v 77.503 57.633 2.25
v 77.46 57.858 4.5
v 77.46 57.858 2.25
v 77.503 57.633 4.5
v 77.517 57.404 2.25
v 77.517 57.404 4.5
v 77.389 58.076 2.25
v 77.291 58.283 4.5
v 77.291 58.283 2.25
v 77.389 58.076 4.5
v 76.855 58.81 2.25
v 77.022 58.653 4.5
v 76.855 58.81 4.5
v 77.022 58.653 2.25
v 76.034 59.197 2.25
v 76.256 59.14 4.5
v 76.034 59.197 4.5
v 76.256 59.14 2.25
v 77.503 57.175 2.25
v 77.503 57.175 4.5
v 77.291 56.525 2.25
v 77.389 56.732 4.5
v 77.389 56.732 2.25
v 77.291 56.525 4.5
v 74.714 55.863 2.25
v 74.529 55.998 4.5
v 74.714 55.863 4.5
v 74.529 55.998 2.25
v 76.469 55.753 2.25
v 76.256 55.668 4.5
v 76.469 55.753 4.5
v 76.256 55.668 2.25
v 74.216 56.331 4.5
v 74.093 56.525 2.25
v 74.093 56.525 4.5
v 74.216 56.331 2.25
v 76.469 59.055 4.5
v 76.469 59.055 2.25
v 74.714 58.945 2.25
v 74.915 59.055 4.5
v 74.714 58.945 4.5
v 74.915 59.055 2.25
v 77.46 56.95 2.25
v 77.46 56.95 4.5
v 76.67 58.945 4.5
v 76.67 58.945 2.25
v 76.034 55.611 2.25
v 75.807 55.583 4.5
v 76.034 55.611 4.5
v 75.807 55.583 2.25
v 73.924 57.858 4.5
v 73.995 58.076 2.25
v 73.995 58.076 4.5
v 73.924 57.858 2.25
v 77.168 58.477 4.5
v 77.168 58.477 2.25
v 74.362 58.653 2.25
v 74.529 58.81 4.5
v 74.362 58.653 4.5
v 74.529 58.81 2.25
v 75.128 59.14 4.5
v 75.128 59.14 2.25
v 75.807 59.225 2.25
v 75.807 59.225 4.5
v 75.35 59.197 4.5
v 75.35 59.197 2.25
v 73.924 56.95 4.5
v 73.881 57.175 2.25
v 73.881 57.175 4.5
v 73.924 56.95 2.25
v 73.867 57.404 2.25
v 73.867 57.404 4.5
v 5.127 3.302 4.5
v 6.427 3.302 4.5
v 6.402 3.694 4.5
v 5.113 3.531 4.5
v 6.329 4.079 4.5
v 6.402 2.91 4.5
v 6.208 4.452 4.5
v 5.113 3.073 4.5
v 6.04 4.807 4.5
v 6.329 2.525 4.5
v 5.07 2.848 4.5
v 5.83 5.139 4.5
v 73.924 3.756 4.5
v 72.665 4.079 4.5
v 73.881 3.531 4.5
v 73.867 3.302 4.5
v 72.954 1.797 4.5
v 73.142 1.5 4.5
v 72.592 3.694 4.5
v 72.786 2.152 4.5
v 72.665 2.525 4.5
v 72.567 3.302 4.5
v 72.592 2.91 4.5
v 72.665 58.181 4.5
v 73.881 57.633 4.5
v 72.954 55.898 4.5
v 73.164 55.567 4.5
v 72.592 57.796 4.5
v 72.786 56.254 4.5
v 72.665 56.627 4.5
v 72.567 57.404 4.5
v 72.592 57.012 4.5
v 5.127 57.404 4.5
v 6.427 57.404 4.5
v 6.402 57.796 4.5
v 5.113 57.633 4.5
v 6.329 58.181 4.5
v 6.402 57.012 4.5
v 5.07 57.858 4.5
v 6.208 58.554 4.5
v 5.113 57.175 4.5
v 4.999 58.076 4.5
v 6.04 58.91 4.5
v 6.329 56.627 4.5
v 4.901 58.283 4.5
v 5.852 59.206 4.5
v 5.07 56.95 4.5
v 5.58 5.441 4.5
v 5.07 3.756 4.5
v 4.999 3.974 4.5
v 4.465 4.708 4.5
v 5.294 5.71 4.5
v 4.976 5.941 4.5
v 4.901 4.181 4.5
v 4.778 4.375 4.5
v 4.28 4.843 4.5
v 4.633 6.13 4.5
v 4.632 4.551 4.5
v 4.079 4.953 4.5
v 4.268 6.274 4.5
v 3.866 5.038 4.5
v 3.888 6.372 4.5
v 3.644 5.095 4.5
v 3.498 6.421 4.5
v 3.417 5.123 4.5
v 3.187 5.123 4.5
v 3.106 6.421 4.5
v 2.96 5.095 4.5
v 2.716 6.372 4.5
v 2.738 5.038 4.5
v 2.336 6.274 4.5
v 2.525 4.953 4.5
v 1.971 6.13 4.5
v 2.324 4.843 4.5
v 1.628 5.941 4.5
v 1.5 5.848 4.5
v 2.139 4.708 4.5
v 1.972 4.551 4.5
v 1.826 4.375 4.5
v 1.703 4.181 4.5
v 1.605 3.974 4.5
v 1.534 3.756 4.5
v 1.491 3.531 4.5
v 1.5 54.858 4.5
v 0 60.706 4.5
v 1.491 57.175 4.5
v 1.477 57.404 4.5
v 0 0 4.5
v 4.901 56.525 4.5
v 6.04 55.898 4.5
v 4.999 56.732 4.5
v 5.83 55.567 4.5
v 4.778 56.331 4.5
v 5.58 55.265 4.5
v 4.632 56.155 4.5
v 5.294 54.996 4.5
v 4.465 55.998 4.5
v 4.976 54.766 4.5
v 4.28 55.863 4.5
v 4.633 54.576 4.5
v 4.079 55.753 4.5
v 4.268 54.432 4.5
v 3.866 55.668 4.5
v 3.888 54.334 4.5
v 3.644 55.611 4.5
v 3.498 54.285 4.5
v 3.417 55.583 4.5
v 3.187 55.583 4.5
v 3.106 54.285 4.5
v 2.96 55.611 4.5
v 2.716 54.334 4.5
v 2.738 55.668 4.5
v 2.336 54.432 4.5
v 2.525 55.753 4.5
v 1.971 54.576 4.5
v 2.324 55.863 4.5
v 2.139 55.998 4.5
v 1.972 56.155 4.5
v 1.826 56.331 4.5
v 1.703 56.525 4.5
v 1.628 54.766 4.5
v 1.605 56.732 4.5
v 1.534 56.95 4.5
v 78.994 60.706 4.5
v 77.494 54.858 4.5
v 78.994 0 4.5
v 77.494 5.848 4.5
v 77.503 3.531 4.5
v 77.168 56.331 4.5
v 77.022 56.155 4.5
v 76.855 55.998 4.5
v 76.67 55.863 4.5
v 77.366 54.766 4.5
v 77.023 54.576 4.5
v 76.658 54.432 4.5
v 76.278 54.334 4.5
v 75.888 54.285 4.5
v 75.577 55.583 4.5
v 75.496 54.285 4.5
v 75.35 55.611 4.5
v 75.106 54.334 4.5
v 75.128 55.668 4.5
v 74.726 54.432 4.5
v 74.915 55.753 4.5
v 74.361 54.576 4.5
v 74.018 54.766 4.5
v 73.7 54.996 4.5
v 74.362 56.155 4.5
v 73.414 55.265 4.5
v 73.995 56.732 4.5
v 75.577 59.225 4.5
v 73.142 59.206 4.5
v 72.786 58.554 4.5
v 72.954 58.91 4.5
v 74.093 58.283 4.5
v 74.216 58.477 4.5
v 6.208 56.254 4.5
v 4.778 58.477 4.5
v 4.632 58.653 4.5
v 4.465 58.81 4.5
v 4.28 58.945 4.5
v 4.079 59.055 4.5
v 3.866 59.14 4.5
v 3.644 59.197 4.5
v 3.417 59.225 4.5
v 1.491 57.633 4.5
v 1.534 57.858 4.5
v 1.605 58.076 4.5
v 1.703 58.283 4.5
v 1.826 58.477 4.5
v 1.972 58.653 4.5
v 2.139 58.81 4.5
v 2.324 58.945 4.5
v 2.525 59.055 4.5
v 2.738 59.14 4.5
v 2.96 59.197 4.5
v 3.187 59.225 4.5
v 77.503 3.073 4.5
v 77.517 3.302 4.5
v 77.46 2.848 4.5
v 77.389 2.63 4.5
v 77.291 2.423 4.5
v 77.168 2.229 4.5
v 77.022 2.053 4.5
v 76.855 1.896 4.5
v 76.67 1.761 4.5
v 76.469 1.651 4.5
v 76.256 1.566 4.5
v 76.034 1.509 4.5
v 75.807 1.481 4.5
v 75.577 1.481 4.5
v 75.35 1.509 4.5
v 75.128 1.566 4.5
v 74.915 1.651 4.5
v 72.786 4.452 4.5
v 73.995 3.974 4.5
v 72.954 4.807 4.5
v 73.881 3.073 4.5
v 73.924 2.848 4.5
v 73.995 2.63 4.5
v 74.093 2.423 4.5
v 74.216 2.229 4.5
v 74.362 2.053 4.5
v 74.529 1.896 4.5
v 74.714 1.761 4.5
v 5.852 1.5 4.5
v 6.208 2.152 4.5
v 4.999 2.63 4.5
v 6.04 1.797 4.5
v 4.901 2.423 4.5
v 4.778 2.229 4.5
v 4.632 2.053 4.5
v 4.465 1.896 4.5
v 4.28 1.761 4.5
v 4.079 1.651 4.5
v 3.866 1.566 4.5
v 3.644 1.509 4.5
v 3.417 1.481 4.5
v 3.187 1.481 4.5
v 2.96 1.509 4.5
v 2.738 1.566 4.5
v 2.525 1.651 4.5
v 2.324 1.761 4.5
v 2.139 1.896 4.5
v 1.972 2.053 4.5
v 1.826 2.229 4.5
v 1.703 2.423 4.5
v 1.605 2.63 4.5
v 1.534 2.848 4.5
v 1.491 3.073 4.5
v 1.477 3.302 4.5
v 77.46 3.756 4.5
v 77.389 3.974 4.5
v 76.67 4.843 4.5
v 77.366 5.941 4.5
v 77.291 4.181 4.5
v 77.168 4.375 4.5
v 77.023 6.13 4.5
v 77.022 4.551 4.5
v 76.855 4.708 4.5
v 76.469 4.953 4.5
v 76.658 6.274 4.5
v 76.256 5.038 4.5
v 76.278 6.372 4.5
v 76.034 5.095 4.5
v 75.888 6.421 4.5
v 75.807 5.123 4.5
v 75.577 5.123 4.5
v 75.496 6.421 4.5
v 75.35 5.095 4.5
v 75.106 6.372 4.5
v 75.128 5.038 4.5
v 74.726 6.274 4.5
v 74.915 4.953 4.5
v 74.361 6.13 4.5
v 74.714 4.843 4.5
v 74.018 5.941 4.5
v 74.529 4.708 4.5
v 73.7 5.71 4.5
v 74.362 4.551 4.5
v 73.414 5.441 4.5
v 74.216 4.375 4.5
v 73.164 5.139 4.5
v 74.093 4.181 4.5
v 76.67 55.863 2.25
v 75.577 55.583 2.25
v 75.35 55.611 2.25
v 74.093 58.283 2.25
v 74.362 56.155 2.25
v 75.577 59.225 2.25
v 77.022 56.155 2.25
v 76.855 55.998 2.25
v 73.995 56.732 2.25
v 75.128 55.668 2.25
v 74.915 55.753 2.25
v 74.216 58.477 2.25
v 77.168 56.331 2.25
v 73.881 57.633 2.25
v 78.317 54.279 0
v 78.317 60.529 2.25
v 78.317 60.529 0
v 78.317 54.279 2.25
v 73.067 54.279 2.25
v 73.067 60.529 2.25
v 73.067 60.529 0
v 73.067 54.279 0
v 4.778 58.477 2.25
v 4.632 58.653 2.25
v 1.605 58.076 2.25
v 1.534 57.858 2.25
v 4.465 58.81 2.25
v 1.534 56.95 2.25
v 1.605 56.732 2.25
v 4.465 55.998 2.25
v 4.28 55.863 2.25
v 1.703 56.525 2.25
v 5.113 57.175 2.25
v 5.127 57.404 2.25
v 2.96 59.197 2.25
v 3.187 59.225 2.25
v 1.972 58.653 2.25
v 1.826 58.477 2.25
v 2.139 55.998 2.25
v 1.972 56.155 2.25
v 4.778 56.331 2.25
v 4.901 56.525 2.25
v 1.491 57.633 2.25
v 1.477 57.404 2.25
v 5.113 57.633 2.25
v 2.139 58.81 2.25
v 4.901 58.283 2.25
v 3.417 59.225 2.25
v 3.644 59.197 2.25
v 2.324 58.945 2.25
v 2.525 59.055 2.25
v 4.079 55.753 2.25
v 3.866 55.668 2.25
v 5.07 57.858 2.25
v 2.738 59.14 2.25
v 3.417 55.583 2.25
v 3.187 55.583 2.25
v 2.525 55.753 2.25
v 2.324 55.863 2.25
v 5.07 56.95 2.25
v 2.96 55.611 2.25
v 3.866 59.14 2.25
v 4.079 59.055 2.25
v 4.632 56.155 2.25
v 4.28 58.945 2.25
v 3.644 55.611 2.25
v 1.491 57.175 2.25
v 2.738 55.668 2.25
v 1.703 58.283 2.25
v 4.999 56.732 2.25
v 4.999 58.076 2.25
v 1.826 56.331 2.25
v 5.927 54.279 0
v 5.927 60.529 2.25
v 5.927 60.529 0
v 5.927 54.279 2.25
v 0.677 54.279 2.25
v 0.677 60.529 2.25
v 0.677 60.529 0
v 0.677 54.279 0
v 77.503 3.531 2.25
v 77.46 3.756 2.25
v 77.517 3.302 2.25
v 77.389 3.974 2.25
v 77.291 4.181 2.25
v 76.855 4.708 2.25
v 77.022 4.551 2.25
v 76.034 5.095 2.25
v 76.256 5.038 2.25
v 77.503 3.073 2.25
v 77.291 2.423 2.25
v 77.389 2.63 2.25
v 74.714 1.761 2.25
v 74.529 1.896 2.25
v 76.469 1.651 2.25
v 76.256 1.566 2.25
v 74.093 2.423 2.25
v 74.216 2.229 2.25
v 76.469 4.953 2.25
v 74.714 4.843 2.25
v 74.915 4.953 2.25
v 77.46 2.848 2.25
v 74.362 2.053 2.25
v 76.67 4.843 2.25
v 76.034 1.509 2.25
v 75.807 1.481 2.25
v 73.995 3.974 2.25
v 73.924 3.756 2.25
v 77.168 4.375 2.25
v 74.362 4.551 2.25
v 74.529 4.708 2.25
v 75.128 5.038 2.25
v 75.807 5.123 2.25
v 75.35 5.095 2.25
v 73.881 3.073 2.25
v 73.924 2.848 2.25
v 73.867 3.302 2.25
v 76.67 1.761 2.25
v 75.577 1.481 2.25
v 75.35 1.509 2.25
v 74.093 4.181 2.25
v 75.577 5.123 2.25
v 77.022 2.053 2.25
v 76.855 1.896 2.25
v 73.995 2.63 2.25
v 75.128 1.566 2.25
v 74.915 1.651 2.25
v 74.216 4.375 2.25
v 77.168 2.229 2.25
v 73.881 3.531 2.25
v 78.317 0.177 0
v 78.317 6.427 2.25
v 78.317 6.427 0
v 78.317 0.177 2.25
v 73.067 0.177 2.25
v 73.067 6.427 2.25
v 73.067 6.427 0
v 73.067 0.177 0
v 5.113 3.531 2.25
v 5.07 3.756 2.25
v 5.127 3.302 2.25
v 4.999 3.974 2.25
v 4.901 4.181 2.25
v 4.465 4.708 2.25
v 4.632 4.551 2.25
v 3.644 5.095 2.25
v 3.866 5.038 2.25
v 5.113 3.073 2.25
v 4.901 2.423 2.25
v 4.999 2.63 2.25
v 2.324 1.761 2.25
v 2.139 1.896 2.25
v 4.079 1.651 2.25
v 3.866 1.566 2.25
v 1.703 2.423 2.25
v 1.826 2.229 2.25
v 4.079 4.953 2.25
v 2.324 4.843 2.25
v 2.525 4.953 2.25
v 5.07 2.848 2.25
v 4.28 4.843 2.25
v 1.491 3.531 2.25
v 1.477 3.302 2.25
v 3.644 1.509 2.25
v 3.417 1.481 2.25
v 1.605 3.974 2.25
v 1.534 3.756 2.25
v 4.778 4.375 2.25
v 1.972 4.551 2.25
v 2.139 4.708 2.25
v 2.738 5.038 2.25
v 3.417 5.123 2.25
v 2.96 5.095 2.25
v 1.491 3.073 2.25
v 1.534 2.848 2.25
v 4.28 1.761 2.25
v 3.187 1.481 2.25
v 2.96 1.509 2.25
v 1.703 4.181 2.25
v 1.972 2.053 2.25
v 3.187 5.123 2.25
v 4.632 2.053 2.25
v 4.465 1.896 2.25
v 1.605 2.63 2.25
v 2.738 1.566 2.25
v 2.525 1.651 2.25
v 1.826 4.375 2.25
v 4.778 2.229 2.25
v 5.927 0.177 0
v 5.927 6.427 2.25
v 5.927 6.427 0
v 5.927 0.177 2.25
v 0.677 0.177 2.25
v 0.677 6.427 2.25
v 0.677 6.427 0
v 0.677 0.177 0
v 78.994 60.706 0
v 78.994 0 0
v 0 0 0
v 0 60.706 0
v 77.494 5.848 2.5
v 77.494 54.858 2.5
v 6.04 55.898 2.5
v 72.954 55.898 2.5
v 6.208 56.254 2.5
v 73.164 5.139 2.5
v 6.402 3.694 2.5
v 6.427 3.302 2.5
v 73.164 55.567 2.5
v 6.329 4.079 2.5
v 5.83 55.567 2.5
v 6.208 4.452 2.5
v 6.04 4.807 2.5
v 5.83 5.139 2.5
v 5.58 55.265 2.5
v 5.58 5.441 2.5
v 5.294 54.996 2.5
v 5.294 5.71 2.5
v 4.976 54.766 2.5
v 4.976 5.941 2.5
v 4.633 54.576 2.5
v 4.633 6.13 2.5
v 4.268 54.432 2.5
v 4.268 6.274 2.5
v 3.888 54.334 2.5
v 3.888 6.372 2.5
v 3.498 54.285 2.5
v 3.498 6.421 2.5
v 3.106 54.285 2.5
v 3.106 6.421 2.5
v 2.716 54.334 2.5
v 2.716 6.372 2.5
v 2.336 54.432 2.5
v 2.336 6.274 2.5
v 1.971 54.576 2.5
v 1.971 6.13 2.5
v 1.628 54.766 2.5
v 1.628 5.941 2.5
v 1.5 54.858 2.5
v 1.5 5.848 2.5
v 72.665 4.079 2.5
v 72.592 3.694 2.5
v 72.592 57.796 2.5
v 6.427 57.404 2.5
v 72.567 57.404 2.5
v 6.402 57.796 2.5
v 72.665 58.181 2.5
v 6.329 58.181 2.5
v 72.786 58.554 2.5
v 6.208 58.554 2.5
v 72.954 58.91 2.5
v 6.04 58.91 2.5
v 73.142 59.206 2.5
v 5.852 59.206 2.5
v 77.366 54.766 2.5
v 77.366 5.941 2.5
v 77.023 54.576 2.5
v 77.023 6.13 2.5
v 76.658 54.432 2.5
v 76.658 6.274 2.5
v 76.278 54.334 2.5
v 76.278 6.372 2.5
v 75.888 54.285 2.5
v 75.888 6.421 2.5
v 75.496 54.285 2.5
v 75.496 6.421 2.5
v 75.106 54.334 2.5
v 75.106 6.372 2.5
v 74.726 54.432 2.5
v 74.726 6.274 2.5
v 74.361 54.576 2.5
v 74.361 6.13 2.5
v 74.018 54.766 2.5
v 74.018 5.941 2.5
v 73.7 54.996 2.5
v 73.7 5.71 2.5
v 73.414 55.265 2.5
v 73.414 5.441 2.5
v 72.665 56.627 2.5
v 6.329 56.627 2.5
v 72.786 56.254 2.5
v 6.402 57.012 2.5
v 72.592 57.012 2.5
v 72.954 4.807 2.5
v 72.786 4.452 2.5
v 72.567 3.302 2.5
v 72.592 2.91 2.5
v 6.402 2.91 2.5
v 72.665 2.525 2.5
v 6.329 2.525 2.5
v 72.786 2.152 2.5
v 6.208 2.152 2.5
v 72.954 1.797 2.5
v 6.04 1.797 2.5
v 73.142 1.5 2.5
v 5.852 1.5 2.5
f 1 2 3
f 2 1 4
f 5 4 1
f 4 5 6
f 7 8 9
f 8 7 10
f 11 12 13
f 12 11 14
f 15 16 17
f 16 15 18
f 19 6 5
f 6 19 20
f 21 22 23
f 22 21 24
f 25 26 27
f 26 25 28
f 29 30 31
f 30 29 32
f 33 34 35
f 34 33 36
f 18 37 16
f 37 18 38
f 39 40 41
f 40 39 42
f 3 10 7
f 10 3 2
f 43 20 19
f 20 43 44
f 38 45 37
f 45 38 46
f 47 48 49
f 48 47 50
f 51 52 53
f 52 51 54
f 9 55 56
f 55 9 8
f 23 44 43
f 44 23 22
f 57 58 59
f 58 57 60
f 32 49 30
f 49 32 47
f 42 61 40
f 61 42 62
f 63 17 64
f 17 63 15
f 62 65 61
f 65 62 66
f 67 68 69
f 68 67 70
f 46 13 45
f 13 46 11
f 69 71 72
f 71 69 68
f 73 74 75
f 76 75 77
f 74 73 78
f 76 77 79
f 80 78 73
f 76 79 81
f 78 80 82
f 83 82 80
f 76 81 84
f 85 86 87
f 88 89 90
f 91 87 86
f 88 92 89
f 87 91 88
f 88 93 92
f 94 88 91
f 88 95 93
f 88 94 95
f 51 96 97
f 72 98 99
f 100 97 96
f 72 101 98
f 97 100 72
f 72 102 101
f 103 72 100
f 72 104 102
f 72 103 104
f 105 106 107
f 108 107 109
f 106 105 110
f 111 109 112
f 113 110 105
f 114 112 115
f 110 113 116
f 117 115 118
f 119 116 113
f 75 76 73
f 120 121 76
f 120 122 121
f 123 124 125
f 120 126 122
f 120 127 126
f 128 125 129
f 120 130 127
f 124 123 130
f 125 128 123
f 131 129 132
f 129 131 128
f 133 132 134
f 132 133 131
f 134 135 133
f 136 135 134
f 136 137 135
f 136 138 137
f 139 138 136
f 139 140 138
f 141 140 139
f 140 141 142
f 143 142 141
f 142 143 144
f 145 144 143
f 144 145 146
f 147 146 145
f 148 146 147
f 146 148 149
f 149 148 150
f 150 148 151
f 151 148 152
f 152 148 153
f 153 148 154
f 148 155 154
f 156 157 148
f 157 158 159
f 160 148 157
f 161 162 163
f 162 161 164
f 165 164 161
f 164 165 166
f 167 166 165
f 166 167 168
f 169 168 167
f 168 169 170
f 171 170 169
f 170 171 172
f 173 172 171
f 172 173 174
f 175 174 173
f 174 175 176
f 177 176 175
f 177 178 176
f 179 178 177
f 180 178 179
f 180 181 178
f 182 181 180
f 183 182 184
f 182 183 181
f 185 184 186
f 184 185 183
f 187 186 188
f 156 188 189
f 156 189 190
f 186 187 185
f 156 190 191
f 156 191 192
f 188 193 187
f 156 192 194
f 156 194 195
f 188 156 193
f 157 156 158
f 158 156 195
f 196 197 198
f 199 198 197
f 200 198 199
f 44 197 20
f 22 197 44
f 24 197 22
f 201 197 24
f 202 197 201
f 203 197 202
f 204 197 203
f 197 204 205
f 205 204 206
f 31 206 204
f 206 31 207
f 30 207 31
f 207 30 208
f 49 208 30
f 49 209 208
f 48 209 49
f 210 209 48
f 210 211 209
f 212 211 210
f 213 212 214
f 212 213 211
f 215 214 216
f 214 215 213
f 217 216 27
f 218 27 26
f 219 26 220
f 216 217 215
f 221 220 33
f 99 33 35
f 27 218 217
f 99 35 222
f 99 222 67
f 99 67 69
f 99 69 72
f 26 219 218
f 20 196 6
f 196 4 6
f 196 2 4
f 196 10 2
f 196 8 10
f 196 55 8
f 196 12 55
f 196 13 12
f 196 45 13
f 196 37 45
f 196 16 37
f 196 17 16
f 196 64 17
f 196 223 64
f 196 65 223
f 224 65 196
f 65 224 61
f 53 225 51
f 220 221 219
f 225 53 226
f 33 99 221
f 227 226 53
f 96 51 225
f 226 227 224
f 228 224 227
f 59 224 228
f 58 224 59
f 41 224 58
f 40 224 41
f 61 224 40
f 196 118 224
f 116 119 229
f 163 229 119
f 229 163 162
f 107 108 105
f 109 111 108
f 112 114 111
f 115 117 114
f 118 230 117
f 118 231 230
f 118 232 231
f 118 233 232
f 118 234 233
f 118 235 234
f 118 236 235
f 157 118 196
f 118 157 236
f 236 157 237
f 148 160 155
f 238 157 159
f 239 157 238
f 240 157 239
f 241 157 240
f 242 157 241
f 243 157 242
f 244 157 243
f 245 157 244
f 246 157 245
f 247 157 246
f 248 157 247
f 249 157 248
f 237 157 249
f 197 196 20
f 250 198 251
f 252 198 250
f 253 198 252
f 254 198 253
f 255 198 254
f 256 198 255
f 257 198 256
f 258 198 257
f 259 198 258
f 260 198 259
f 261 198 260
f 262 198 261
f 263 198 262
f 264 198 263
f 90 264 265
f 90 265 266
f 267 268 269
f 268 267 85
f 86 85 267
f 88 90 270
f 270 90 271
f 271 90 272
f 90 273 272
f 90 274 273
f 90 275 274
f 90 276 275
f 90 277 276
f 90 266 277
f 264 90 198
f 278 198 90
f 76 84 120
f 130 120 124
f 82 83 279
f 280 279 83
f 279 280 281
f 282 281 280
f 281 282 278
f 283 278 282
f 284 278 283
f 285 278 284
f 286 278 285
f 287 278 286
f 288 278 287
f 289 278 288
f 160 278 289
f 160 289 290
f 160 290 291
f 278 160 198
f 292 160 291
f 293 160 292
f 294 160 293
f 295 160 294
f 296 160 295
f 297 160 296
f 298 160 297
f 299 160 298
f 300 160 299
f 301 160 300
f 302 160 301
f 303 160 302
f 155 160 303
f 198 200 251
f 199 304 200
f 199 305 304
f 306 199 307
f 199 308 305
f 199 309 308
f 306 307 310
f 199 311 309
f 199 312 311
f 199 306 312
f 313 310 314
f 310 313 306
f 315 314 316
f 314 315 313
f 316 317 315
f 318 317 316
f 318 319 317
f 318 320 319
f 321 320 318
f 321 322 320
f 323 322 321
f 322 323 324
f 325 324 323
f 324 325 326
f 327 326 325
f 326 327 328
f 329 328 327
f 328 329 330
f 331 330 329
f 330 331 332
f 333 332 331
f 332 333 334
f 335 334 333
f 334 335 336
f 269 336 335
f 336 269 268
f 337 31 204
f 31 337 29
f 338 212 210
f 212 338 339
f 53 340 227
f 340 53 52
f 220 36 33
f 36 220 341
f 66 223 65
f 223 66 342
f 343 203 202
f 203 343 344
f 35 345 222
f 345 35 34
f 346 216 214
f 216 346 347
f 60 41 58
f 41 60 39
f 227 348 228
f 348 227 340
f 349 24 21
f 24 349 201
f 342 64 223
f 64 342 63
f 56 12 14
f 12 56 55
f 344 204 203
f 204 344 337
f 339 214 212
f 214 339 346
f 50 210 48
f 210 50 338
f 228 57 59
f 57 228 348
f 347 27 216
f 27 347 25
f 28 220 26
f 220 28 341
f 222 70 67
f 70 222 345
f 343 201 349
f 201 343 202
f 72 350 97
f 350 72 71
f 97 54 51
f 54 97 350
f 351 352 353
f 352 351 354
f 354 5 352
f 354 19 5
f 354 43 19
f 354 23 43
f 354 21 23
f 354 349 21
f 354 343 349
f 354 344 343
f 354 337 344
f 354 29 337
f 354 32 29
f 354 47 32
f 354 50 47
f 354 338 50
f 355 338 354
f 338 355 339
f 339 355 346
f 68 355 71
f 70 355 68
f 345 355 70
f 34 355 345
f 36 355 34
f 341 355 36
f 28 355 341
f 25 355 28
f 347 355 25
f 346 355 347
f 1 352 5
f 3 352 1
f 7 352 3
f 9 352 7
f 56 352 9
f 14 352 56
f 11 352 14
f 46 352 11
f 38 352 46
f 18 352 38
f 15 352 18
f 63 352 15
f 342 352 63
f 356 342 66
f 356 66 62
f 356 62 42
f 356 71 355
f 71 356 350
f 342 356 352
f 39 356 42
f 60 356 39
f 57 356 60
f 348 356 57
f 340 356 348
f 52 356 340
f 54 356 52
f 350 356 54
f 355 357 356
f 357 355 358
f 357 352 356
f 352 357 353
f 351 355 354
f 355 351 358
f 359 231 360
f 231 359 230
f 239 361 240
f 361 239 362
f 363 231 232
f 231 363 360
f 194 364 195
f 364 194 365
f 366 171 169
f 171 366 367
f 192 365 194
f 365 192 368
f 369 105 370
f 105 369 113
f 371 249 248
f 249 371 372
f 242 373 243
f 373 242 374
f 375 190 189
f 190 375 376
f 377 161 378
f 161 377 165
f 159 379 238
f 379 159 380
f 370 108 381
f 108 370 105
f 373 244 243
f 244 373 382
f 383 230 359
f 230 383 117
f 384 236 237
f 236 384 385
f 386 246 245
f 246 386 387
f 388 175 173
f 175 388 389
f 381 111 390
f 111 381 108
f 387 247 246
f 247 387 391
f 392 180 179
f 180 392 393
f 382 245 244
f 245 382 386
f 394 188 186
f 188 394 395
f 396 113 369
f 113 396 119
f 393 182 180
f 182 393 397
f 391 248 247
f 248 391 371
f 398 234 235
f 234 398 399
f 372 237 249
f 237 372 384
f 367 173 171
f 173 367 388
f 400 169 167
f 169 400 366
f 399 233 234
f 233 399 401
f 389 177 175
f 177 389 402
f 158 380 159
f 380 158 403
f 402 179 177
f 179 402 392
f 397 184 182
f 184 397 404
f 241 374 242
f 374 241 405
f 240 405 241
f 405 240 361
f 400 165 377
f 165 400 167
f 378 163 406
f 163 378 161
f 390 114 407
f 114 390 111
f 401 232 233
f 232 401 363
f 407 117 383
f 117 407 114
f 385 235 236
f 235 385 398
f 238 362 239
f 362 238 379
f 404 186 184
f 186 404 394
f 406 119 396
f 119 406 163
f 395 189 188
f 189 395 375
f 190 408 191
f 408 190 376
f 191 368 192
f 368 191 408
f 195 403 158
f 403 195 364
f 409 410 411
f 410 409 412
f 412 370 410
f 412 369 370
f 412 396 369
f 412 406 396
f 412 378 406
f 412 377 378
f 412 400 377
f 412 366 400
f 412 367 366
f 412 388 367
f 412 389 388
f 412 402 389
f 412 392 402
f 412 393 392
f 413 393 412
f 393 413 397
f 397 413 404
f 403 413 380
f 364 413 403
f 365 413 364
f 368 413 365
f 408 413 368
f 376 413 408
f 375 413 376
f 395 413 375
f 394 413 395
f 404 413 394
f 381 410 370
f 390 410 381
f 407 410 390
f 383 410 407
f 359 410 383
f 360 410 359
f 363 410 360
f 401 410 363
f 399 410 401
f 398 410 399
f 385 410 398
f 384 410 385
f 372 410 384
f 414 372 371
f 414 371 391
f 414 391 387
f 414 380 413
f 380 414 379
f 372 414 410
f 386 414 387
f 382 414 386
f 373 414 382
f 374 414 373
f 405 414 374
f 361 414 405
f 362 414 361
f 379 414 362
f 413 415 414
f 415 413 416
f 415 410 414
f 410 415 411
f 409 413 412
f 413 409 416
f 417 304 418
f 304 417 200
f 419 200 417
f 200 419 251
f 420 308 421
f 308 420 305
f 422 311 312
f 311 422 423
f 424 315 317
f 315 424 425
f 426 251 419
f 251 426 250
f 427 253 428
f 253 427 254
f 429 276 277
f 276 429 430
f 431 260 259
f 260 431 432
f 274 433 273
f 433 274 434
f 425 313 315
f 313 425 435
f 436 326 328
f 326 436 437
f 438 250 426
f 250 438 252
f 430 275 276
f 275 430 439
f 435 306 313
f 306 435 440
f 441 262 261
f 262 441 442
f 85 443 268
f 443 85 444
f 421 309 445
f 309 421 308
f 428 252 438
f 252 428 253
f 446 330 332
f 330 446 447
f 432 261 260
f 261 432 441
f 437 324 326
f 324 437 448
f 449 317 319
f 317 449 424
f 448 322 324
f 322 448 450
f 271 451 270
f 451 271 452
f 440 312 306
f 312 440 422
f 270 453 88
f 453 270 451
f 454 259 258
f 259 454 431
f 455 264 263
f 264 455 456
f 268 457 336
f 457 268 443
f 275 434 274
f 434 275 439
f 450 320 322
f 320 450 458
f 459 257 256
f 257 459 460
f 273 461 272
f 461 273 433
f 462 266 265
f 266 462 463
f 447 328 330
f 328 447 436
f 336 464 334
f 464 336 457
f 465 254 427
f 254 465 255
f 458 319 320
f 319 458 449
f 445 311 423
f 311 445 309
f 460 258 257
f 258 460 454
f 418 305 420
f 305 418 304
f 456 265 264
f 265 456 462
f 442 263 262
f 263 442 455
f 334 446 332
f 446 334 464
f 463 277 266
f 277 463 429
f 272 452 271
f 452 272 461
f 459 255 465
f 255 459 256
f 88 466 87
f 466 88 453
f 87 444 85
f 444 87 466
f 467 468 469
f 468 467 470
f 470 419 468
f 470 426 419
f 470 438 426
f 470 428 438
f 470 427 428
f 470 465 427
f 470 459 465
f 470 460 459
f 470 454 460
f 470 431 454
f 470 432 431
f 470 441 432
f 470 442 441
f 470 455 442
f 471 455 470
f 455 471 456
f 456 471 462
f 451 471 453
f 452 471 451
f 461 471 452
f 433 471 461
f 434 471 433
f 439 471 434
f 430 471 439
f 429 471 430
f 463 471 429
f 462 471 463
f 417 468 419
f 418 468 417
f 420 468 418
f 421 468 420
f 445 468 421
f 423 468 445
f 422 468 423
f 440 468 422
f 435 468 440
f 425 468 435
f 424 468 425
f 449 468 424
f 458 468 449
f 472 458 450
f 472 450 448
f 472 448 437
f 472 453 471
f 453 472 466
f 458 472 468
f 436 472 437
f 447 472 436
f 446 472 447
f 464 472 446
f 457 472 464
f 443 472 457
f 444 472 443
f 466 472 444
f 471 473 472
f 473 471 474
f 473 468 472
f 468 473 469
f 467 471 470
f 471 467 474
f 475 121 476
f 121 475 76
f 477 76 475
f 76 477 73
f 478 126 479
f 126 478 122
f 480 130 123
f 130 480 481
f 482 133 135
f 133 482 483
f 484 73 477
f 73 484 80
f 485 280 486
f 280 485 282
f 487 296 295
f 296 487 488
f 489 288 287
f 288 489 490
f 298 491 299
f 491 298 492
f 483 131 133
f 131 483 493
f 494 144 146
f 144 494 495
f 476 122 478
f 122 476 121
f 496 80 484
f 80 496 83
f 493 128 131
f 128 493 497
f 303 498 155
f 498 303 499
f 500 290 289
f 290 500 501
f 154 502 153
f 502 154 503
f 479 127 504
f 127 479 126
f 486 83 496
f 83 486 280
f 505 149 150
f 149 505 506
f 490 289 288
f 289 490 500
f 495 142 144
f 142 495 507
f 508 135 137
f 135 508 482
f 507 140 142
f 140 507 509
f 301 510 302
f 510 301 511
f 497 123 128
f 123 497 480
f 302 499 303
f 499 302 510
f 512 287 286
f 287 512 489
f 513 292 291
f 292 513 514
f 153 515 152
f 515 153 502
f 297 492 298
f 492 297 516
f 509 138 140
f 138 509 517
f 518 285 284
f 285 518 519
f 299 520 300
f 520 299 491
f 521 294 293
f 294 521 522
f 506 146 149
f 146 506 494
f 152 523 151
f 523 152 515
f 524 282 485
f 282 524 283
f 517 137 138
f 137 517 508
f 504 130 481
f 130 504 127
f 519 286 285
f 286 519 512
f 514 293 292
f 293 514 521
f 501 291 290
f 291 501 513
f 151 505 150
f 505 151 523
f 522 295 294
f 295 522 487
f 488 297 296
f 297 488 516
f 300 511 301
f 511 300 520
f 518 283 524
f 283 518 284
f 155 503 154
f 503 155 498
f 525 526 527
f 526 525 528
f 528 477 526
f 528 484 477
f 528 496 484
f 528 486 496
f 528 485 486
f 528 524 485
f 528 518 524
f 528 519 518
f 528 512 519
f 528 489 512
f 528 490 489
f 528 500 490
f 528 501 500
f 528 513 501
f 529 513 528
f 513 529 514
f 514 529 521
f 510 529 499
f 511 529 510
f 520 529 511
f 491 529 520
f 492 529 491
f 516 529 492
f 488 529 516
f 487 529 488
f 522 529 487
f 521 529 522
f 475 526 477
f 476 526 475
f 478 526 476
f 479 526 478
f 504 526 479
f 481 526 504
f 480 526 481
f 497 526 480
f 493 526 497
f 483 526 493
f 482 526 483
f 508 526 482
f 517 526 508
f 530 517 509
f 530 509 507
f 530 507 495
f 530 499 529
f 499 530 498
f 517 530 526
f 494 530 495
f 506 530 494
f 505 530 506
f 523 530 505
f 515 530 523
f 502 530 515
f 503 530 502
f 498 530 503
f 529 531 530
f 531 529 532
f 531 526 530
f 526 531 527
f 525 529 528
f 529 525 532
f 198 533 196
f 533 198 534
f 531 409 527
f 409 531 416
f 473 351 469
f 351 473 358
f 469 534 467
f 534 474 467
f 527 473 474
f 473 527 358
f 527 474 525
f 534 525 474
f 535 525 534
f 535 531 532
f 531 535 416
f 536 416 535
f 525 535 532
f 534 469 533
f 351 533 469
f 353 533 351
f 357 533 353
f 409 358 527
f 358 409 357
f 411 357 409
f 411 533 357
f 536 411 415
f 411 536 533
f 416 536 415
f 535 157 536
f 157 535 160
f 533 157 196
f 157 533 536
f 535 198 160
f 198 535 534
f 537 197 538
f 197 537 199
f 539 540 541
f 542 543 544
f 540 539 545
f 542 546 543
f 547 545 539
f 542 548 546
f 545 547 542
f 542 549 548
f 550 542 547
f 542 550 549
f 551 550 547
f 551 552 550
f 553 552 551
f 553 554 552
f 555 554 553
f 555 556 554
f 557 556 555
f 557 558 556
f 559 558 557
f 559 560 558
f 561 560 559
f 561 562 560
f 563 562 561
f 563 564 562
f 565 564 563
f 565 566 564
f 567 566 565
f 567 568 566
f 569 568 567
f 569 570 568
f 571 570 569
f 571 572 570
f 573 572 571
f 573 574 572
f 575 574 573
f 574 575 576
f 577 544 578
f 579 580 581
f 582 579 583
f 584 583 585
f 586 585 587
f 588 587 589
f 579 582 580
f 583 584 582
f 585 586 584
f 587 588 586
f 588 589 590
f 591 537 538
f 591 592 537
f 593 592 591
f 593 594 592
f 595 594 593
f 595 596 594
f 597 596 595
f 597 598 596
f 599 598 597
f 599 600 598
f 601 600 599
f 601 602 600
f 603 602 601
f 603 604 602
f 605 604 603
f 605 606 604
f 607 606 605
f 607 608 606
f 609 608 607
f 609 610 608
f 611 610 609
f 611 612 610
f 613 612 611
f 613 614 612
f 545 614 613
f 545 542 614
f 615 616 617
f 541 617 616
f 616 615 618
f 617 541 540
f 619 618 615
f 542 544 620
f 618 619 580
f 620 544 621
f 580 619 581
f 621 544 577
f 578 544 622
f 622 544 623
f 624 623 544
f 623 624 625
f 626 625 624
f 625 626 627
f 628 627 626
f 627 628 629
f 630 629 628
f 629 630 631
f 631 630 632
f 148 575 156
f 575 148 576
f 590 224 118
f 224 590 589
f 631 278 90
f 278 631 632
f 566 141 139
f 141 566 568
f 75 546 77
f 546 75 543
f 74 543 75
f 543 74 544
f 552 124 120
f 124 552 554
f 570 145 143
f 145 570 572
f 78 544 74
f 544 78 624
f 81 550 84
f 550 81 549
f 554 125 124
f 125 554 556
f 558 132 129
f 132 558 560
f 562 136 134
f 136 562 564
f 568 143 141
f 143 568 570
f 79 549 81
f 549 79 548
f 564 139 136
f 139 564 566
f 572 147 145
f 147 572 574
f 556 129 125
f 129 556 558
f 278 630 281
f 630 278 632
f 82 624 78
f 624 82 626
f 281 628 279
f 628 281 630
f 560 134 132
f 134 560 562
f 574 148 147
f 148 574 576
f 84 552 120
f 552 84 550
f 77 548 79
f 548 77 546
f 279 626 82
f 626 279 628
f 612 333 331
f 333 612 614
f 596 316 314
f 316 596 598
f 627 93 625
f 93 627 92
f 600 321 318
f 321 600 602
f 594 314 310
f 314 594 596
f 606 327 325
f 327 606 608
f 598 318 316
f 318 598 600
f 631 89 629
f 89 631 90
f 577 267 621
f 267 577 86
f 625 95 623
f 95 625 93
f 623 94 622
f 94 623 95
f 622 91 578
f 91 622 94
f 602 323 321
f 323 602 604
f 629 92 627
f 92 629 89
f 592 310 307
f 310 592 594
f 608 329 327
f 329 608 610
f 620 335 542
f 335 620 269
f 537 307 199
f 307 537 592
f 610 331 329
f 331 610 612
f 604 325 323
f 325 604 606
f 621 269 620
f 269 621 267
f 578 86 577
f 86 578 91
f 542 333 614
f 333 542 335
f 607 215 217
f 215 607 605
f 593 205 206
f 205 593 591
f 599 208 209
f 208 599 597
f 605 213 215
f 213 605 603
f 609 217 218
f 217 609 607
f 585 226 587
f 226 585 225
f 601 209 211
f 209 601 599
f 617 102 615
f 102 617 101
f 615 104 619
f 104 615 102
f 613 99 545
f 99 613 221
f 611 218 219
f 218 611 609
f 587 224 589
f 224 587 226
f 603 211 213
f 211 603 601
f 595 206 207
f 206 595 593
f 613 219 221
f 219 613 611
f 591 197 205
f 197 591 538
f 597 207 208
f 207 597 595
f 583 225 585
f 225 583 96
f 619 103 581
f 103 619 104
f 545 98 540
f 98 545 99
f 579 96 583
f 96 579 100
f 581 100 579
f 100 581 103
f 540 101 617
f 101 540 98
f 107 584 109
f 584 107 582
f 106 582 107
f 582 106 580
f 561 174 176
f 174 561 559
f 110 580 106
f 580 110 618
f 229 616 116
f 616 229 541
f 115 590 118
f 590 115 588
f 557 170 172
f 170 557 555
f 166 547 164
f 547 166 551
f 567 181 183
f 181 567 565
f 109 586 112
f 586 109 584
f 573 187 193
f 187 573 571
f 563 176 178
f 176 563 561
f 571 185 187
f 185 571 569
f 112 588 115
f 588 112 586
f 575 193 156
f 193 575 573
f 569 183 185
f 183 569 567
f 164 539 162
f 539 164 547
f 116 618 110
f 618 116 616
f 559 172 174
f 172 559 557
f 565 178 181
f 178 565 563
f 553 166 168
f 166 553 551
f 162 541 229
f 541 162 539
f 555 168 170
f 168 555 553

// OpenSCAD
$fn = 50;
pcb_width = 78.994;
pcb_height = 60.706;
housing_thickness = 2.5;
mounting_hole_inset = 3.302;
mounting_hole_keepout = 4;
mounting_hole_diameter = 3.25;
hole_tolerance = 0.2;
pcb_standoff = 2;
pcb_standoff_width = 1.5;
nut_width = 5.25;
nut_height = 6.25;
nut_depth = 2.25;
difference()
{
    union()
    {
        difference()
        {
            cube([pcb_width, pcb_height, housing_thickness+pcb_standoff]);
            translate([pcb_standoff_width,pcb_standoff_width,housing_thickness])
            {   
                cube([pcb_width-2*pcb_standoff_width, pcb_height-2*pcb_standoff_width, pcb_standoff]);
            }
        }
        translate([mounting_hole_inset,mounting_hole_inset,0])cylinder(r=mounting_hole_diameter/2+pcb_standoff_width, h = pcb_standoff + housing_thickness);
        translate([pcb_width-mounting_hole_inset,mounting_hole_inset,0])cylinder(r=mounting_hole_diameter/2+pcb_standoff_width, h = pcb_standoff + housing_thickness);
        translate([pcb_width-mounting_hole_inset,pcb_height-mounting_hole_inset,0])cylinder(r=mounting_hole_diameter/2+pcb_standoff_width, h = pcb_standoff + housing_thickness);
        translate([mounting_hole_inset,pcb_height-mounting_hole_inset,0])cylinder(r=mounting_hole_diameter/2+pcb_standoff_width, h = pcb_standoff + housing_thickness);
    }
    translate([pcb_width-mounting_hole_inset,pcb_height-mounting_hole_inset,0])
    {
        cylinder(r=mounting_hole_diameter/2+hole_tolerance, h = pcb_standoff + housing_thickness);
        cube([nut_width, nut_height, nut_depth*2], center=true);
    }
    translate([mounting_hole_inset,pcb_height-mounting_hole_inset,0])
    {
        cylinder(r=mounting_hole_diameter/2+hole_tolerance, h = pcb_standoff + housing_thickness);
        cube([nut_width, nut_height, nut_depth*2], center=true);
    }
    translate([pcb_width-mounting_hole_inset,mounting_hole_inset,0])
    {
        cylinder(r=mounting_hole_diameter/2+hole_tolerance, h = pcb_standoff + housing_thickness);
        cube([nut_width, nut_height, nut_depth*2], center=true);
    }
    translate([mounting_hole_inset,mounting_hole_inset,0])
    {
        cylinder(r=mounting_hole_diameter/2+hole_tolerance, h = pcb_standoff + housing_thickness);
        cube([nut_width, nut_height, nut_depth*2], center=true);
    }    
}
